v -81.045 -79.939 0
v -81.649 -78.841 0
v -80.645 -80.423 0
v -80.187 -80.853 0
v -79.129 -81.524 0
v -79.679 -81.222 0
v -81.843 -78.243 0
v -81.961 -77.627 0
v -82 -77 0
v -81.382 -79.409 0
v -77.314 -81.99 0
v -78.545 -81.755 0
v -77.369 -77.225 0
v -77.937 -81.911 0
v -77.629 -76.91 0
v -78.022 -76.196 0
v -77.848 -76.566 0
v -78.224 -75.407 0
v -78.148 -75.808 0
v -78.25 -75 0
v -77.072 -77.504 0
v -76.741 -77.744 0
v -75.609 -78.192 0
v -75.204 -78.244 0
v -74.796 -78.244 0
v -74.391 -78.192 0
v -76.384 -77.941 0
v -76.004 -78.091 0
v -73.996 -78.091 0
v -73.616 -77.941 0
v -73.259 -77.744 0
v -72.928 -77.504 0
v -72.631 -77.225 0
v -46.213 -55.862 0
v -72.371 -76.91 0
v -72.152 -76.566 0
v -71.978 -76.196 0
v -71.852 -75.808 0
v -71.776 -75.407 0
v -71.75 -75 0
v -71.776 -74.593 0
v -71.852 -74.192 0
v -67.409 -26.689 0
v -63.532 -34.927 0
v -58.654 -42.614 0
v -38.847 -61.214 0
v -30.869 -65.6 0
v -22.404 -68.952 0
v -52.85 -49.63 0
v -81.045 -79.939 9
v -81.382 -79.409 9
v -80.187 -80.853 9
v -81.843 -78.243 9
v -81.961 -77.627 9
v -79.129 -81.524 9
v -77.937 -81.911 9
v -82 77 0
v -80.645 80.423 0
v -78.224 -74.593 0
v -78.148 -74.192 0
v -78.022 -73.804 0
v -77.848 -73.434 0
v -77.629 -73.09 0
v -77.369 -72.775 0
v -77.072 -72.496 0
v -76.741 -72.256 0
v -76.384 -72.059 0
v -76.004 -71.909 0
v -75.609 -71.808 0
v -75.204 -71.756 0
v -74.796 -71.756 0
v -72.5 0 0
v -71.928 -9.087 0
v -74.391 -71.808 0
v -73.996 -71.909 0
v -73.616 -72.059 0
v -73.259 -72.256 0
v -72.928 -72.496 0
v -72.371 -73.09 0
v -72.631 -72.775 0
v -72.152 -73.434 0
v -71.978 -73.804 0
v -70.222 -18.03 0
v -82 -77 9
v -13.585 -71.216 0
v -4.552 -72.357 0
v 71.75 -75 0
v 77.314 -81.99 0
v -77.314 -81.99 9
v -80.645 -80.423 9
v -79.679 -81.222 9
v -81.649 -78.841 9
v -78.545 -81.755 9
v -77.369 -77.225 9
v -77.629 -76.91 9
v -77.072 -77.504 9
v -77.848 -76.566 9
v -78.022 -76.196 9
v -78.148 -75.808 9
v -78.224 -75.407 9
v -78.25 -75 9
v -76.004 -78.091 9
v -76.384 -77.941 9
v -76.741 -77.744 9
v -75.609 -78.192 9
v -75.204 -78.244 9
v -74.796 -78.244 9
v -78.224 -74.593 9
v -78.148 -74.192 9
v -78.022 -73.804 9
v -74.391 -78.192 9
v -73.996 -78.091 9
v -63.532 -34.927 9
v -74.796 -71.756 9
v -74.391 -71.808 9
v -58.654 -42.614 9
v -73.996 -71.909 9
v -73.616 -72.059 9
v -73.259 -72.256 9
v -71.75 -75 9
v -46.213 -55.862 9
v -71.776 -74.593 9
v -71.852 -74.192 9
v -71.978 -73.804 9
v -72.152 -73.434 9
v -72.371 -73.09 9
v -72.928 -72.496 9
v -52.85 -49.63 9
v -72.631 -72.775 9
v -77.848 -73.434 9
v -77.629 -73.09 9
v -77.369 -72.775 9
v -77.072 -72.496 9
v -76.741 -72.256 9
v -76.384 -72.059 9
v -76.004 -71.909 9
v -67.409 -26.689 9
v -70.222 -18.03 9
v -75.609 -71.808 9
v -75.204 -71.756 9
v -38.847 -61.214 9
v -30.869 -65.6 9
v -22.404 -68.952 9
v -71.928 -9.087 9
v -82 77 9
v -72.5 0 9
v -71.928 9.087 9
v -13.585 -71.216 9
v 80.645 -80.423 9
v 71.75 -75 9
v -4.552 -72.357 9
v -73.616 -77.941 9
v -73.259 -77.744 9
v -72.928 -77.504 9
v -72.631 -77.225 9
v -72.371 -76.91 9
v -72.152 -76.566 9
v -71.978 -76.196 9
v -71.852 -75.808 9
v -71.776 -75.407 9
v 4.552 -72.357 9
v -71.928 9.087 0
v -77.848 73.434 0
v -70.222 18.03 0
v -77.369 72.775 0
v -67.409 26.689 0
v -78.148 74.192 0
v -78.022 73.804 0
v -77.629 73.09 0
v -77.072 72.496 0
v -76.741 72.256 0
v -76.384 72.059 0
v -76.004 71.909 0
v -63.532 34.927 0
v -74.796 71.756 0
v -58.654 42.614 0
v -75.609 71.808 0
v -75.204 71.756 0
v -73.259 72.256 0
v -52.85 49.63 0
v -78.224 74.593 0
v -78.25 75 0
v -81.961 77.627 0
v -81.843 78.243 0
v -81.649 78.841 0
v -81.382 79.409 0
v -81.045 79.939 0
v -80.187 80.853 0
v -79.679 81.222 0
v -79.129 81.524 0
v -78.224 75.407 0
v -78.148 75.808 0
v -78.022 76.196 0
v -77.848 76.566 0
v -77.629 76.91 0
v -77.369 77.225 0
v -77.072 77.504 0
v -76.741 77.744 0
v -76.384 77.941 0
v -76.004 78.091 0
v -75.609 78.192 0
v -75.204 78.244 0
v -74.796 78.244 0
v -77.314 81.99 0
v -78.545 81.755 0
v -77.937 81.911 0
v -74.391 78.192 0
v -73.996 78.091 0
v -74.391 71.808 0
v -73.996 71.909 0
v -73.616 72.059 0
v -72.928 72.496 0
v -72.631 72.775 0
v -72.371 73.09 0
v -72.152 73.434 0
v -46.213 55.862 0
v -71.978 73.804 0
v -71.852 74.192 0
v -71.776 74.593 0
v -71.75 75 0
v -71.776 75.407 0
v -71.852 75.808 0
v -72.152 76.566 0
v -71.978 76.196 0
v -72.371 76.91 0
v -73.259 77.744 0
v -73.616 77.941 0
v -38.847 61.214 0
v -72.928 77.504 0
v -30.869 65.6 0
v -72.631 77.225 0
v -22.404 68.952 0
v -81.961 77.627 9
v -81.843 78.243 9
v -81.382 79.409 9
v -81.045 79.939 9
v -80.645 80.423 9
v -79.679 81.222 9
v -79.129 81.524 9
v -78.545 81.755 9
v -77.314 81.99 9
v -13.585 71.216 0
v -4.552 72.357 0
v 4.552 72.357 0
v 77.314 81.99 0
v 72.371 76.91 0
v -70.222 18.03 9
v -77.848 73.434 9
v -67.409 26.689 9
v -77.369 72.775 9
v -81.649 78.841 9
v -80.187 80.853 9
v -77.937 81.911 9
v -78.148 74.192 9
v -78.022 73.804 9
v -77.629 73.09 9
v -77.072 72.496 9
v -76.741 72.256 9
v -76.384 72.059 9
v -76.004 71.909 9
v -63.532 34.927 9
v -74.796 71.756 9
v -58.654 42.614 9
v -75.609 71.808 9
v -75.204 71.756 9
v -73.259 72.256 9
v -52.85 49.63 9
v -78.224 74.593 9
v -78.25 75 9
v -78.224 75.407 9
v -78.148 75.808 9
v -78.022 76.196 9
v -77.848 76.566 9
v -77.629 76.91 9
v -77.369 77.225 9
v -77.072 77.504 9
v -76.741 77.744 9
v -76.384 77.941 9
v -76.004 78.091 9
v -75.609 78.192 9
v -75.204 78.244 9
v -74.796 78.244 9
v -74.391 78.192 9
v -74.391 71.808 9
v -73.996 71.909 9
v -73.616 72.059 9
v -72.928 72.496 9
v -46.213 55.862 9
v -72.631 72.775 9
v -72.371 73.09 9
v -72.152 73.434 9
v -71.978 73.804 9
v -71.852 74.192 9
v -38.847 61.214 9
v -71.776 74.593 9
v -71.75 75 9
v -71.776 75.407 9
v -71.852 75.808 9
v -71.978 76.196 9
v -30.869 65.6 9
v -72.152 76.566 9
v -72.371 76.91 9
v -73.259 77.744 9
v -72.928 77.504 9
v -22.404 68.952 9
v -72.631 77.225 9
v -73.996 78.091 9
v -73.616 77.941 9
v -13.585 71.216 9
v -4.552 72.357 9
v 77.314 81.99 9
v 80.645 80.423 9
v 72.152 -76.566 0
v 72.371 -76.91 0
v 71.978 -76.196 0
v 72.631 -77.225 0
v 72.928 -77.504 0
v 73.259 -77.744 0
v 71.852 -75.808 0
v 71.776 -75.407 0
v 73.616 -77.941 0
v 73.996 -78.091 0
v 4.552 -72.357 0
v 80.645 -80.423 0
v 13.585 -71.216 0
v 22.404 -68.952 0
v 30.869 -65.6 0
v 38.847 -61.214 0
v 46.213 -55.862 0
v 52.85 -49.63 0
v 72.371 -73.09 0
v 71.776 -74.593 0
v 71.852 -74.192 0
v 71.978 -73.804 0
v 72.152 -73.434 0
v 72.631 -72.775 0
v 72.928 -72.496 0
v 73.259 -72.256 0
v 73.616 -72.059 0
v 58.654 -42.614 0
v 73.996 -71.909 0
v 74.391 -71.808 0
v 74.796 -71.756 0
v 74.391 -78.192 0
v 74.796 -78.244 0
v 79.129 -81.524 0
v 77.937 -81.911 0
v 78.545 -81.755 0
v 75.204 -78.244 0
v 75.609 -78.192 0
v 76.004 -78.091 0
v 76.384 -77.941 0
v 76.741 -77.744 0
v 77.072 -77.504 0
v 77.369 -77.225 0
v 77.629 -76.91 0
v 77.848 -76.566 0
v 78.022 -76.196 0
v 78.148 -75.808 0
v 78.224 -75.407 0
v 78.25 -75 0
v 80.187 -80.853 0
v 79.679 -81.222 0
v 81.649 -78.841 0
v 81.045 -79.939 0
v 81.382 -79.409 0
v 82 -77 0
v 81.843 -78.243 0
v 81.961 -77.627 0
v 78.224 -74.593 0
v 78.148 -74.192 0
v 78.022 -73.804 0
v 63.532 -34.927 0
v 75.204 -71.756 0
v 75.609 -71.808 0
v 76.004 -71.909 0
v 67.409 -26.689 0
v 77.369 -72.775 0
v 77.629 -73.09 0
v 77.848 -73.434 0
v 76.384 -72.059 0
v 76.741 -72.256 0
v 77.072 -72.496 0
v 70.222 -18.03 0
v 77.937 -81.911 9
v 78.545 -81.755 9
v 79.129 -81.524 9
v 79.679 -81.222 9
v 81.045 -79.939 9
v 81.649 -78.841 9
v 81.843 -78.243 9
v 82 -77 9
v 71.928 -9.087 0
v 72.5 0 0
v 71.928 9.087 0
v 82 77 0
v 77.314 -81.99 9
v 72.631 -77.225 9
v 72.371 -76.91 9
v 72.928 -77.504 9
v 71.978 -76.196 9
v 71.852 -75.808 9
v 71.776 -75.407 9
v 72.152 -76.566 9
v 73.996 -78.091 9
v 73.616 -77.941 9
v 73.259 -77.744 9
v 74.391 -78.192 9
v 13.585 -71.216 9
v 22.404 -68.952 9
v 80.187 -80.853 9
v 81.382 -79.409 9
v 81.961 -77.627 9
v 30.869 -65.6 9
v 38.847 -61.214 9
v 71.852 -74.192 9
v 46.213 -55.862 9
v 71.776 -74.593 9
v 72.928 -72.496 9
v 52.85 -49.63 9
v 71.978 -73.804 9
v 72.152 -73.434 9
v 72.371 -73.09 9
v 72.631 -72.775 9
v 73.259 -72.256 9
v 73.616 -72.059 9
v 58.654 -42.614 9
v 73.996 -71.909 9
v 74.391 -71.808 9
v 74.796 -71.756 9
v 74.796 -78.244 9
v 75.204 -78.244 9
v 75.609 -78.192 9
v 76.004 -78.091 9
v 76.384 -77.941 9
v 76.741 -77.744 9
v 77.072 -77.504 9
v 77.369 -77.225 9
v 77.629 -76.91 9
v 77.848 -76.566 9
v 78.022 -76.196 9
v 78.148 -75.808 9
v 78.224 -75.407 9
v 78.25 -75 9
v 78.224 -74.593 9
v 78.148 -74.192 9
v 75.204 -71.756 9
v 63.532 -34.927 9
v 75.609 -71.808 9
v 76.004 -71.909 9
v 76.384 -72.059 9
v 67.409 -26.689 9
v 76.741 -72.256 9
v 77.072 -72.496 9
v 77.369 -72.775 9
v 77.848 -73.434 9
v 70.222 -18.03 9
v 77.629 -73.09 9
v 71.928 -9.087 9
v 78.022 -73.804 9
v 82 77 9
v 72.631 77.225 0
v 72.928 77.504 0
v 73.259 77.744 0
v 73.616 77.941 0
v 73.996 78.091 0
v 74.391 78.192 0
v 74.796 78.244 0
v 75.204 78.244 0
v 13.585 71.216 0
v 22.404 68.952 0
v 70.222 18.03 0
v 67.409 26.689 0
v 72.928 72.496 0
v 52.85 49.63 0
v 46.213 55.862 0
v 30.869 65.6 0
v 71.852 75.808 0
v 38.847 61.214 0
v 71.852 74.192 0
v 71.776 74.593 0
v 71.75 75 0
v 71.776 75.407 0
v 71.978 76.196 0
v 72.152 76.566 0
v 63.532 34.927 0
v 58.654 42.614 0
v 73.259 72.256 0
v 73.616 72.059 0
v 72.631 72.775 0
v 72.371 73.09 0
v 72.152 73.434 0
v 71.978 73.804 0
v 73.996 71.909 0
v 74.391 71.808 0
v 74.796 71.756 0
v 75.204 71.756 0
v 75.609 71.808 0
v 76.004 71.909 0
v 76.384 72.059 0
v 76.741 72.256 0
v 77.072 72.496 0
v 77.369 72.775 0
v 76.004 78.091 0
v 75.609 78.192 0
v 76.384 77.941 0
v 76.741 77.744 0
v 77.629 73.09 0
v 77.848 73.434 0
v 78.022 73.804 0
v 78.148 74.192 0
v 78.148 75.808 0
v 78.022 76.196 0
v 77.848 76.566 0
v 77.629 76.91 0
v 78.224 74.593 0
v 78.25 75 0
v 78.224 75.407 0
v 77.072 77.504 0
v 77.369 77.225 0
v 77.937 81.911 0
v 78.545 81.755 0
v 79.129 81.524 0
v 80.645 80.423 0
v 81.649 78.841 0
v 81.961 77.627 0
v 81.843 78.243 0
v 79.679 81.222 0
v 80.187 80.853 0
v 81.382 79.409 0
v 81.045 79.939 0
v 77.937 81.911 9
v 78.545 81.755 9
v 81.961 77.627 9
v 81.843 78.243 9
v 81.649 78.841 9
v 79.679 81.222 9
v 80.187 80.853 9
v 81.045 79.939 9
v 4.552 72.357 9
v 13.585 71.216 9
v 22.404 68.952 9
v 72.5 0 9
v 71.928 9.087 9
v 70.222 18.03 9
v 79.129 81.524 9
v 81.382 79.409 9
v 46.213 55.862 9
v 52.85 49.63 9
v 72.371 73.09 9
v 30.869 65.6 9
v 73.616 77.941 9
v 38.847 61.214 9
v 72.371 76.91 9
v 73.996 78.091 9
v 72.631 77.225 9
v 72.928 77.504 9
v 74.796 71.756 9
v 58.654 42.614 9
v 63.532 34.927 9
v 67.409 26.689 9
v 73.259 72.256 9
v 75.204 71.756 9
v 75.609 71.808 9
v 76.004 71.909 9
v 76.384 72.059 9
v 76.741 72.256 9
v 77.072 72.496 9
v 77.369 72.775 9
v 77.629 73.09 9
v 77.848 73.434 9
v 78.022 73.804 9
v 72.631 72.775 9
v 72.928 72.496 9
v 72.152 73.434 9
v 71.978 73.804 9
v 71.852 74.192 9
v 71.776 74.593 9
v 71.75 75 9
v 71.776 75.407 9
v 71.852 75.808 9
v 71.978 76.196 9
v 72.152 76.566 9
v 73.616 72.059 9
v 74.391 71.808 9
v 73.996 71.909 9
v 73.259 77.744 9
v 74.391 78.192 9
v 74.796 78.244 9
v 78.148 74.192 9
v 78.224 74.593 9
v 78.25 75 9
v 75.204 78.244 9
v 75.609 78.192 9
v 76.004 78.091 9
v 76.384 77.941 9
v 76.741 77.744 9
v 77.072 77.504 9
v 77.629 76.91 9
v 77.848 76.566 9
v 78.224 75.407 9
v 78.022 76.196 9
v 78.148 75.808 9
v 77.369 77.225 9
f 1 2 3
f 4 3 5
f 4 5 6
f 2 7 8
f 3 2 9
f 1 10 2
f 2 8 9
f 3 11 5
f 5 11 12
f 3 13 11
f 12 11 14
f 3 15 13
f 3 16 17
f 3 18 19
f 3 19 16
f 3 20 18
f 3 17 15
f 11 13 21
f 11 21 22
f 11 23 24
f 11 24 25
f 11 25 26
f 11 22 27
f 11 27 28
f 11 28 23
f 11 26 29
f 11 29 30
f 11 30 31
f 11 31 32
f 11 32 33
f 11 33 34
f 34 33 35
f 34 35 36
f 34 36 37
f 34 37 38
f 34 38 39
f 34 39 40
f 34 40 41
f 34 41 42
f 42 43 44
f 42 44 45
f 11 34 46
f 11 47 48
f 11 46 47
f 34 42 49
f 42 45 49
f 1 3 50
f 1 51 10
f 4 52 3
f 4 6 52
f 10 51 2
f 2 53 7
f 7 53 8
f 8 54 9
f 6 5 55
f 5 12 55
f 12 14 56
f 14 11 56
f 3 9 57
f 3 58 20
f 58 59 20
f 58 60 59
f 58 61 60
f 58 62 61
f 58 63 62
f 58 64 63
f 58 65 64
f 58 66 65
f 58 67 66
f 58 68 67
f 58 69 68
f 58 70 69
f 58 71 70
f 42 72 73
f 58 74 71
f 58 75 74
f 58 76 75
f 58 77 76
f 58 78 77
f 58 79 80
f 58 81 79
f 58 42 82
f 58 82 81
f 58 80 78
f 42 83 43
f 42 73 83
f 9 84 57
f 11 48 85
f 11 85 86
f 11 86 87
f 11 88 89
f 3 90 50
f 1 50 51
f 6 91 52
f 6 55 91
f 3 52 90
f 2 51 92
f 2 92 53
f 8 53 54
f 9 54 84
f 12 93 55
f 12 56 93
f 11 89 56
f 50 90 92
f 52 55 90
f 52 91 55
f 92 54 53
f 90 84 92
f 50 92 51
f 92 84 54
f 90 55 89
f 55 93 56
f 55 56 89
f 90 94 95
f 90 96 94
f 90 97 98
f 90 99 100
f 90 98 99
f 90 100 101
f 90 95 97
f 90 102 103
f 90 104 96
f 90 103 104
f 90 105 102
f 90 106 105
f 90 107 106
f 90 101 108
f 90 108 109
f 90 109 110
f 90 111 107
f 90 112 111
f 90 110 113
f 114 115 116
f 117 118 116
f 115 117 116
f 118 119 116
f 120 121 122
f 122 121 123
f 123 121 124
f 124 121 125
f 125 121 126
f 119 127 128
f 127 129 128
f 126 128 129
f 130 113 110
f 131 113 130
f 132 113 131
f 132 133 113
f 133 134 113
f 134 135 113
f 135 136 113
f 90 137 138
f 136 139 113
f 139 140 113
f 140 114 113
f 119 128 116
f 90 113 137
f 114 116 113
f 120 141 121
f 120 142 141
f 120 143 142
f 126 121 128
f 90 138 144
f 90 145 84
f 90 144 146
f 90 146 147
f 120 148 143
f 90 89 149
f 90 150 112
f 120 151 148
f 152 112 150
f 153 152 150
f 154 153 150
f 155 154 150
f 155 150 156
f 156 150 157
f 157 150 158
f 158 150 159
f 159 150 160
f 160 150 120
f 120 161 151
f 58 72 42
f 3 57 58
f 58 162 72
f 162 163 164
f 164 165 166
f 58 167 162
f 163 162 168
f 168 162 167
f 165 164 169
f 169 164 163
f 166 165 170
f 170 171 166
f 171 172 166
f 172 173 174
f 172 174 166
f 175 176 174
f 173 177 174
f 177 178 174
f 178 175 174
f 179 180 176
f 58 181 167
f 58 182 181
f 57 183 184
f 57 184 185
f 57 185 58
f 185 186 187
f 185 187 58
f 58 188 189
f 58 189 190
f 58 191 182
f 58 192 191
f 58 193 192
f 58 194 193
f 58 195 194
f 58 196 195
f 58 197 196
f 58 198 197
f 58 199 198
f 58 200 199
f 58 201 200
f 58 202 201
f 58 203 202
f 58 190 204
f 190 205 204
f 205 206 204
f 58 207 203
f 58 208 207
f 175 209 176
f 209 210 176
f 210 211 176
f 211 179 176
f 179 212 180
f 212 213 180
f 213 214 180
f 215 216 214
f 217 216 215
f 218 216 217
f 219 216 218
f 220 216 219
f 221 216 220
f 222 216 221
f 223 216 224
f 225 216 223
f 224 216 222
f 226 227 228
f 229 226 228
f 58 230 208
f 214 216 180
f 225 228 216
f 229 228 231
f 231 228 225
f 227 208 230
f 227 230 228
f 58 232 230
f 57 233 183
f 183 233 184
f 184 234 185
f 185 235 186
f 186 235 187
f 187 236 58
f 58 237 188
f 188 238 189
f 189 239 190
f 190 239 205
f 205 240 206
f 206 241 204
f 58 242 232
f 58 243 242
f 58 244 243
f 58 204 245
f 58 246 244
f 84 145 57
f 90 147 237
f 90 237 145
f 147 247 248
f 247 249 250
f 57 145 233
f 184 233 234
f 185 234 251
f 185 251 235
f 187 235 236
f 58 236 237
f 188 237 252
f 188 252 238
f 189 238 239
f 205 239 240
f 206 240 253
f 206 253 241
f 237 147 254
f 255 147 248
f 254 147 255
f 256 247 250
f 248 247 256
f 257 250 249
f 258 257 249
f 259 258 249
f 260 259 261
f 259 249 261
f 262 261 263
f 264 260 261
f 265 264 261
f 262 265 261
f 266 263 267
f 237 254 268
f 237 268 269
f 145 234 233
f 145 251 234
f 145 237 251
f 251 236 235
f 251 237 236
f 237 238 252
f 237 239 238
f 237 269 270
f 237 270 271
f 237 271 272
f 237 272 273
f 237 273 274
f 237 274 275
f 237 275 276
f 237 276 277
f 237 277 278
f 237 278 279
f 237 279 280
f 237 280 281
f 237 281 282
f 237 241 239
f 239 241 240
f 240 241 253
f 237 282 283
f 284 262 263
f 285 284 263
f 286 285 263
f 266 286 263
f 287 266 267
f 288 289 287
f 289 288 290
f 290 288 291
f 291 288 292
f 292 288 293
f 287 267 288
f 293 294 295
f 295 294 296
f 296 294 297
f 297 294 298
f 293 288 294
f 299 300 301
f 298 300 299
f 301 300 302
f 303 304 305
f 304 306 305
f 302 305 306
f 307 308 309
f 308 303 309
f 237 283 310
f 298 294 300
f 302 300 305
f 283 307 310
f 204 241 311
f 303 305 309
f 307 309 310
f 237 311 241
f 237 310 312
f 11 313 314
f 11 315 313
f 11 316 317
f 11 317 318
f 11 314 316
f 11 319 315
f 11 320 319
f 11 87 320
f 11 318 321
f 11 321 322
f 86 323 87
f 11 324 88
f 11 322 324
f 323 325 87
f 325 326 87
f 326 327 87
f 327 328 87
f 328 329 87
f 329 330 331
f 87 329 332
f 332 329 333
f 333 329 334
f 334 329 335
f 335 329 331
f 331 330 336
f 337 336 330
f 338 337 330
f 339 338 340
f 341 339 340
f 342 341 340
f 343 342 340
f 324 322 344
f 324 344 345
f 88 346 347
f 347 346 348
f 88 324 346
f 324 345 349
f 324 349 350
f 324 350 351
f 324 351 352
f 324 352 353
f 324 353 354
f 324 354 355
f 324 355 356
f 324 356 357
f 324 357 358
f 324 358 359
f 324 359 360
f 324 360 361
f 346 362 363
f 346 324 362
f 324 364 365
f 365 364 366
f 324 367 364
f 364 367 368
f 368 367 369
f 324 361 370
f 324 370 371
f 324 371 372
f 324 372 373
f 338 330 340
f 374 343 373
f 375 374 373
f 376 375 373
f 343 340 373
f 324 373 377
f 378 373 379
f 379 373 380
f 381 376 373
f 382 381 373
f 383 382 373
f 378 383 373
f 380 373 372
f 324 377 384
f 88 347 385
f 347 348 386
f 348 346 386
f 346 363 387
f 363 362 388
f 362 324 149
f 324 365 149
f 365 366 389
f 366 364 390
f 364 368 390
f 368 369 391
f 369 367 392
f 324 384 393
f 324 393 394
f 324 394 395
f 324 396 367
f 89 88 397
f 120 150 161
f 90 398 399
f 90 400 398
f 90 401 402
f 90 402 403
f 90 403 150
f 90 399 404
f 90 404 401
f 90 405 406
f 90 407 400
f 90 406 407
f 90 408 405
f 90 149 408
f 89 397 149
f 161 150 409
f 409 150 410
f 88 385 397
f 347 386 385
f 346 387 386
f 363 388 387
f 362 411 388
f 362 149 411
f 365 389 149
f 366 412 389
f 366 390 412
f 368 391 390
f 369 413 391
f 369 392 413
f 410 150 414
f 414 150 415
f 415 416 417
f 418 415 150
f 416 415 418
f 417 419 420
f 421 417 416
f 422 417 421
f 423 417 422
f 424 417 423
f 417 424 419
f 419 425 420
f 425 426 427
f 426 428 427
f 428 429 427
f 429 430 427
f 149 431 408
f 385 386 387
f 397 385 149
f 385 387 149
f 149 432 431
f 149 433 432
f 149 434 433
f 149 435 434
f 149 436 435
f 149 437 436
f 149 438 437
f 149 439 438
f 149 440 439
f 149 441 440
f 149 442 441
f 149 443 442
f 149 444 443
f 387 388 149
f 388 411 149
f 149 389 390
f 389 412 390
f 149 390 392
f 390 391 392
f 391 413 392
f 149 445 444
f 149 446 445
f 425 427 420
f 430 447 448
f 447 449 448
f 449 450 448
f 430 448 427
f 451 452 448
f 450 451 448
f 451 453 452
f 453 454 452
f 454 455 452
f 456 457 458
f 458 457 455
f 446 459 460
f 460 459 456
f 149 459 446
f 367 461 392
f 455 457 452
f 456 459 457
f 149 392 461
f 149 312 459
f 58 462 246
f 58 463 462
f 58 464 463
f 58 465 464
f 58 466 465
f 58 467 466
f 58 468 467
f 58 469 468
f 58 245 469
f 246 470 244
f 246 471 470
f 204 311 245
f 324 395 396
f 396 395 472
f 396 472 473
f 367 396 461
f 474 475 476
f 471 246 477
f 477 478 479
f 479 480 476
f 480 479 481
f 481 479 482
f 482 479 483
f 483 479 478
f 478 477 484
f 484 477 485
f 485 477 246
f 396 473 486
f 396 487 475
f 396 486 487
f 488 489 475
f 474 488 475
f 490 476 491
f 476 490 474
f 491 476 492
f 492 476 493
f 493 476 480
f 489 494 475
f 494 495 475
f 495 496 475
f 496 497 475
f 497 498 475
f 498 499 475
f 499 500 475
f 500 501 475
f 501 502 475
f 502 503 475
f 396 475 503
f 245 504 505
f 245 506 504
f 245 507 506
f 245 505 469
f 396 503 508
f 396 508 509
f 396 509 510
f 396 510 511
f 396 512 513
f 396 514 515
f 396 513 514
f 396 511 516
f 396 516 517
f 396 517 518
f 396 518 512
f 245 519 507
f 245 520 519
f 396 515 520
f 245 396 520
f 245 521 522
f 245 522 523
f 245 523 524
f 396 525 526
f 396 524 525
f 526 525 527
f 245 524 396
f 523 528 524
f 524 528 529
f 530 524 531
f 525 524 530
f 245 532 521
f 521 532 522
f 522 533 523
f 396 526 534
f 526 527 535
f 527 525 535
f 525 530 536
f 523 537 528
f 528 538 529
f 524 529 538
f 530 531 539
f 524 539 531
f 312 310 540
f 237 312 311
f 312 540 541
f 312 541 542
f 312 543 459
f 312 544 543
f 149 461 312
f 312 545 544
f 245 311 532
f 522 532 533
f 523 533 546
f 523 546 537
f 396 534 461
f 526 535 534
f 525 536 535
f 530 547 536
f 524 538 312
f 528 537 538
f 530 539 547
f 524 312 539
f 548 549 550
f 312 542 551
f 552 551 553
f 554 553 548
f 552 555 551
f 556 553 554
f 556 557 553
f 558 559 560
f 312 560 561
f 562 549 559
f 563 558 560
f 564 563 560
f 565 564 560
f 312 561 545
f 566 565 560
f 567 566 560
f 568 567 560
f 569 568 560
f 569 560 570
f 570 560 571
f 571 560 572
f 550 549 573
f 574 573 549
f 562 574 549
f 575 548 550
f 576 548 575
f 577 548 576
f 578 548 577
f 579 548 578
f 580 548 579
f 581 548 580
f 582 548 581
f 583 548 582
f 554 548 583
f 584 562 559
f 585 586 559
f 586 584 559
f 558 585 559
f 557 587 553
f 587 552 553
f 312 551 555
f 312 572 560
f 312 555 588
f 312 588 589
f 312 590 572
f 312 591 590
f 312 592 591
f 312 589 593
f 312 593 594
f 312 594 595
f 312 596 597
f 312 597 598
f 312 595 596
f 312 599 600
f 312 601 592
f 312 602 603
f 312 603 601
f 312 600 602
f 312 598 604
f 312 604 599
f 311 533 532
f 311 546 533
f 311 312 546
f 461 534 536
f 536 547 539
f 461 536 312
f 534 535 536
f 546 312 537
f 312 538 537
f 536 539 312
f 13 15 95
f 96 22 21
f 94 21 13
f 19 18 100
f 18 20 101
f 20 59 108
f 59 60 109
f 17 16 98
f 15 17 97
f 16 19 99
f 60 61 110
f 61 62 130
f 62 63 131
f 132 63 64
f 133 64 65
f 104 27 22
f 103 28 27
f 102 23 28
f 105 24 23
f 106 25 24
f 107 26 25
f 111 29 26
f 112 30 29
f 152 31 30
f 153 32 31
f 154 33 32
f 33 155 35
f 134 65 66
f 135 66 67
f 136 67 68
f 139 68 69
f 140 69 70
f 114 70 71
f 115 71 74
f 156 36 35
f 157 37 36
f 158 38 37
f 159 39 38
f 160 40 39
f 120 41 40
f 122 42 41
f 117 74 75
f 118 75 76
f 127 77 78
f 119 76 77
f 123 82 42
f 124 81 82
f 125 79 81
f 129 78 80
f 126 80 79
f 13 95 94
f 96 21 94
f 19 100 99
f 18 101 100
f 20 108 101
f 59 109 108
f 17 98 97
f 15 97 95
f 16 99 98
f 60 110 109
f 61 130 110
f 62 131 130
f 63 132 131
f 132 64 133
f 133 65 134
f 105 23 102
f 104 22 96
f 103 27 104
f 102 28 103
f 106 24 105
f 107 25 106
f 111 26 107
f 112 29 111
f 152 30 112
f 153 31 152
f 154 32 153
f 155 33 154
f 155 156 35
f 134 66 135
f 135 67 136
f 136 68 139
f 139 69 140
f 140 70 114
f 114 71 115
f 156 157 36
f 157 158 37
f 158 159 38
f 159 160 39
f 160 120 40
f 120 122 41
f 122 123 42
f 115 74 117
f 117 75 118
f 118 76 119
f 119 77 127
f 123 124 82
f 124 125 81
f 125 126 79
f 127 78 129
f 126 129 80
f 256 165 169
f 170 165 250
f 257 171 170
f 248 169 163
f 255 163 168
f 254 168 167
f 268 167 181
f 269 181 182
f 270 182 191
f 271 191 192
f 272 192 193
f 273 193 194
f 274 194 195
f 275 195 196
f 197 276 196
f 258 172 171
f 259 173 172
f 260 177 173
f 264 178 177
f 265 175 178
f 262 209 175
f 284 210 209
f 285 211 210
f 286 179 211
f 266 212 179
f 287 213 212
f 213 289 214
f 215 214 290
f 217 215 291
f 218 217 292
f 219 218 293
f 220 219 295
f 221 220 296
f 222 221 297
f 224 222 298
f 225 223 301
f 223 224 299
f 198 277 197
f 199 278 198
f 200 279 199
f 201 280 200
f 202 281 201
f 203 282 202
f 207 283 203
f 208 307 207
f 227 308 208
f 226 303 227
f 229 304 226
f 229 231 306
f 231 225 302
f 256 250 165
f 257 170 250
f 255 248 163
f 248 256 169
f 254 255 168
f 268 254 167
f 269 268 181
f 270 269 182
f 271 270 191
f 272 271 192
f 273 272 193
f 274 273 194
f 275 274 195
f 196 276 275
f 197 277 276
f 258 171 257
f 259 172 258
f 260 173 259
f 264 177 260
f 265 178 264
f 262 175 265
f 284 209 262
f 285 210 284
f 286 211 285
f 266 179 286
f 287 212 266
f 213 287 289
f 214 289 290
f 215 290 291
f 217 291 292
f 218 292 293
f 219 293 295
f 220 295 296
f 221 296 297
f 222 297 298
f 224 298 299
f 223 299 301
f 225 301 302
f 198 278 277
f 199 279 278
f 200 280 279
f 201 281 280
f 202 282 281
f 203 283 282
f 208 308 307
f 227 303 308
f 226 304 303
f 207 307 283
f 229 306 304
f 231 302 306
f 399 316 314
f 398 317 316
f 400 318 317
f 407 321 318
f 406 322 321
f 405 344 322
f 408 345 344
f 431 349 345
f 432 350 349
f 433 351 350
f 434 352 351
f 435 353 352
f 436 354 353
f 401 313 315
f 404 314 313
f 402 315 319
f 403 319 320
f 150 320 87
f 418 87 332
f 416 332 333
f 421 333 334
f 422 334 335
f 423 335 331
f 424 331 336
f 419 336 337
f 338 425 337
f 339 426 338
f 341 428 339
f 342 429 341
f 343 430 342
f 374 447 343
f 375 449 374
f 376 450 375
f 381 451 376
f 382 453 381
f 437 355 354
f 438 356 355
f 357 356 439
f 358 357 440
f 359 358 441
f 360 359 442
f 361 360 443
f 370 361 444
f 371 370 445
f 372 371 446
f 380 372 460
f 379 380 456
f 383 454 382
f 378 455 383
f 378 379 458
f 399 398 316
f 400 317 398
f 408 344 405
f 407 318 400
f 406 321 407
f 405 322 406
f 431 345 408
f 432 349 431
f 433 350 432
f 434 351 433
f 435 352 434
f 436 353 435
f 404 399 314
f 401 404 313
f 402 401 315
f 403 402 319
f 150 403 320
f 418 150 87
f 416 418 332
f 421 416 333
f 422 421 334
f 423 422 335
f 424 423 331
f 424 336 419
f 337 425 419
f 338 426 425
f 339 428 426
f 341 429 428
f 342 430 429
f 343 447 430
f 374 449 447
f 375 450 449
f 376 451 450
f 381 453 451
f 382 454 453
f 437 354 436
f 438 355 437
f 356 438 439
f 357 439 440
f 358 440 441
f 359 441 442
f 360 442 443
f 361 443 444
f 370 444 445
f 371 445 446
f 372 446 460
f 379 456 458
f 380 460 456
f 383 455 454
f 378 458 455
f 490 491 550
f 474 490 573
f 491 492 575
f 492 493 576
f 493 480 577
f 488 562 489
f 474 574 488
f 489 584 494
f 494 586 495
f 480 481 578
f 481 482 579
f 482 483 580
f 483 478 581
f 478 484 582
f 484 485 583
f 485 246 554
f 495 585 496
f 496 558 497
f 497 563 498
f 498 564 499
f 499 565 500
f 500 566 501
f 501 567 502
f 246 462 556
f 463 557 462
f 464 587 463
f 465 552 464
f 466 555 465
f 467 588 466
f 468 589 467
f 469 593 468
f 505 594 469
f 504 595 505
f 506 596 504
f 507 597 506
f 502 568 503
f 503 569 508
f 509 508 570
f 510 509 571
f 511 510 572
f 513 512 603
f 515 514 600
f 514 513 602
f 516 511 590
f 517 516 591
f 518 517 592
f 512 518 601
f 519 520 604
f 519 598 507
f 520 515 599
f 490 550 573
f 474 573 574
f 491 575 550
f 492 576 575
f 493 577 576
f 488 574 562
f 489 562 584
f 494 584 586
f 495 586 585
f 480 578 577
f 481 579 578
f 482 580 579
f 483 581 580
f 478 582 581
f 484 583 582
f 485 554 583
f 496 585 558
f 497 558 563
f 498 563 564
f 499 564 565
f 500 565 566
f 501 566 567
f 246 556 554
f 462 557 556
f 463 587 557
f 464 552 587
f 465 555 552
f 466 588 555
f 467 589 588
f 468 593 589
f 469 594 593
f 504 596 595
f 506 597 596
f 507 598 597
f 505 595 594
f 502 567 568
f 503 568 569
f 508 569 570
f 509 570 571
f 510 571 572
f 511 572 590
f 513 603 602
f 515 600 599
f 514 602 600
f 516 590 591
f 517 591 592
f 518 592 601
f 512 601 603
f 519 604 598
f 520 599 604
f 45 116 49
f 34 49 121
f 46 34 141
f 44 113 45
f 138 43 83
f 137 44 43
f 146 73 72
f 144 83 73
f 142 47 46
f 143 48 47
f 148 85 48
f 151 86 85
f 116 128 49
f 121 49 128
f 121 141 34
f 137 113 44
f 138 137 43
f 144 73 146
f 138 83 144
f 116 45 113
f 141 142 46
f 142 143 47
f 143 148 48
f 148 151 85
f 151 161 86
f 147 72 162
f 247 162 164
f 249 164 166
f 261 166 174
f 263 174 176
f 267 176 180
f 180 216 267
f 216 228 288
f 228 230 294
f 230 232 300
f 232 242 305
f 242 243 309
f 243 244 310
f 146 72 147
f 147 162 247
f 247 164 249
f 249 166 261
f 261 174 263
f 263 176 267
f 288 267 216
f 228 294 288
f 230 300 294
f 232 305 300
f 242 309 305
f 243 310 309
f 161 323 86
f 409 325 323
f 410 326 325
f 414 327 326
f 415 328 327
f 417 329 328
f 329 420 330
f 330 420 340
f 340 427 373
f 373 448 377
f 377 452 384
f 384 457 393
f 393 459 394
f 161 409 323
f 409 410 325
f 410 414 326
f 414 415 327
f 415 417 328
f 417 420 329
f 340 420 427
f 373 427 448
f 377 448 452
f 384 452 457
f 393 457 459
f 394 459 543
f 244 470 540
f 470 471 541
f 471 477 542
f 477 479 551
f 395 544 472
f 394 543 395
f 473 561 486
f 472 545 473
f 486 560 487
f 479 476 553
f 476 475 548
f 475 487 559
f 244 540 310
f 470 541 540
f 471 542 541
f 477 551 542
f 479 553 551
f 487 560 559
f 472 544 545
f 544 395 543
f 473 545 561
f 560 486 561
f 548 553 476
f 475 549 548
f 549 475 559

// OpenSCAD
$fn = 50;

difference() {
	union() {
		hull() {
			translate(v = [-77.0, 77.0, 0]) {
				cylinder(h = 9, r = 5);
			}
			translate(v = [77.0, 77.0, 0]) {
				cylinder(h = 9, r = 5);
			}
			translate(v = [-77.0, -77.0, 0]) {
				cylinder(h = 9, r = 5);
			}
			translate(v = [77.0, -77.0, 0]) {
				cylinder(h = 9, r = 5);
			}
		}
	}
	union() {
		translate(v = [-75.0, -75.0, -100.0]) {
			cylinder(h = 200, r = 3.25);
		}
		translate(v = [-75.0, 75.0, -100.0]) {
			cylinder(h = 200, r = 3.25);
		}
		translate(v = [75.0, -75.0, -100.0]) {
			cylinder(h = 200, r = 3.25);
		}
		translate(v = [75.0, 75.0, -100.0]) {
			cylinder(h = 200, r = 3.25);
		}
		translate(v = [-75.0, -75.0, -100.0]) {
			cylinder(h = 200, r = 1.8);
		}
		translate(v = [-75.0, 75.0, -100.0]) {
			cylinder(h = 200, r = 1.8);
		}
		translate(v = [75.0, -75.0, -100.0]) {
			cylinder(h = 200, r = 1.8);
		}
		translate(v = [75.0, 75.0, -100.0]) {
			cylinder(h = 200, r = 1.8);
		}
		cylinder(h = 9, r = 72.5);
	}
}
